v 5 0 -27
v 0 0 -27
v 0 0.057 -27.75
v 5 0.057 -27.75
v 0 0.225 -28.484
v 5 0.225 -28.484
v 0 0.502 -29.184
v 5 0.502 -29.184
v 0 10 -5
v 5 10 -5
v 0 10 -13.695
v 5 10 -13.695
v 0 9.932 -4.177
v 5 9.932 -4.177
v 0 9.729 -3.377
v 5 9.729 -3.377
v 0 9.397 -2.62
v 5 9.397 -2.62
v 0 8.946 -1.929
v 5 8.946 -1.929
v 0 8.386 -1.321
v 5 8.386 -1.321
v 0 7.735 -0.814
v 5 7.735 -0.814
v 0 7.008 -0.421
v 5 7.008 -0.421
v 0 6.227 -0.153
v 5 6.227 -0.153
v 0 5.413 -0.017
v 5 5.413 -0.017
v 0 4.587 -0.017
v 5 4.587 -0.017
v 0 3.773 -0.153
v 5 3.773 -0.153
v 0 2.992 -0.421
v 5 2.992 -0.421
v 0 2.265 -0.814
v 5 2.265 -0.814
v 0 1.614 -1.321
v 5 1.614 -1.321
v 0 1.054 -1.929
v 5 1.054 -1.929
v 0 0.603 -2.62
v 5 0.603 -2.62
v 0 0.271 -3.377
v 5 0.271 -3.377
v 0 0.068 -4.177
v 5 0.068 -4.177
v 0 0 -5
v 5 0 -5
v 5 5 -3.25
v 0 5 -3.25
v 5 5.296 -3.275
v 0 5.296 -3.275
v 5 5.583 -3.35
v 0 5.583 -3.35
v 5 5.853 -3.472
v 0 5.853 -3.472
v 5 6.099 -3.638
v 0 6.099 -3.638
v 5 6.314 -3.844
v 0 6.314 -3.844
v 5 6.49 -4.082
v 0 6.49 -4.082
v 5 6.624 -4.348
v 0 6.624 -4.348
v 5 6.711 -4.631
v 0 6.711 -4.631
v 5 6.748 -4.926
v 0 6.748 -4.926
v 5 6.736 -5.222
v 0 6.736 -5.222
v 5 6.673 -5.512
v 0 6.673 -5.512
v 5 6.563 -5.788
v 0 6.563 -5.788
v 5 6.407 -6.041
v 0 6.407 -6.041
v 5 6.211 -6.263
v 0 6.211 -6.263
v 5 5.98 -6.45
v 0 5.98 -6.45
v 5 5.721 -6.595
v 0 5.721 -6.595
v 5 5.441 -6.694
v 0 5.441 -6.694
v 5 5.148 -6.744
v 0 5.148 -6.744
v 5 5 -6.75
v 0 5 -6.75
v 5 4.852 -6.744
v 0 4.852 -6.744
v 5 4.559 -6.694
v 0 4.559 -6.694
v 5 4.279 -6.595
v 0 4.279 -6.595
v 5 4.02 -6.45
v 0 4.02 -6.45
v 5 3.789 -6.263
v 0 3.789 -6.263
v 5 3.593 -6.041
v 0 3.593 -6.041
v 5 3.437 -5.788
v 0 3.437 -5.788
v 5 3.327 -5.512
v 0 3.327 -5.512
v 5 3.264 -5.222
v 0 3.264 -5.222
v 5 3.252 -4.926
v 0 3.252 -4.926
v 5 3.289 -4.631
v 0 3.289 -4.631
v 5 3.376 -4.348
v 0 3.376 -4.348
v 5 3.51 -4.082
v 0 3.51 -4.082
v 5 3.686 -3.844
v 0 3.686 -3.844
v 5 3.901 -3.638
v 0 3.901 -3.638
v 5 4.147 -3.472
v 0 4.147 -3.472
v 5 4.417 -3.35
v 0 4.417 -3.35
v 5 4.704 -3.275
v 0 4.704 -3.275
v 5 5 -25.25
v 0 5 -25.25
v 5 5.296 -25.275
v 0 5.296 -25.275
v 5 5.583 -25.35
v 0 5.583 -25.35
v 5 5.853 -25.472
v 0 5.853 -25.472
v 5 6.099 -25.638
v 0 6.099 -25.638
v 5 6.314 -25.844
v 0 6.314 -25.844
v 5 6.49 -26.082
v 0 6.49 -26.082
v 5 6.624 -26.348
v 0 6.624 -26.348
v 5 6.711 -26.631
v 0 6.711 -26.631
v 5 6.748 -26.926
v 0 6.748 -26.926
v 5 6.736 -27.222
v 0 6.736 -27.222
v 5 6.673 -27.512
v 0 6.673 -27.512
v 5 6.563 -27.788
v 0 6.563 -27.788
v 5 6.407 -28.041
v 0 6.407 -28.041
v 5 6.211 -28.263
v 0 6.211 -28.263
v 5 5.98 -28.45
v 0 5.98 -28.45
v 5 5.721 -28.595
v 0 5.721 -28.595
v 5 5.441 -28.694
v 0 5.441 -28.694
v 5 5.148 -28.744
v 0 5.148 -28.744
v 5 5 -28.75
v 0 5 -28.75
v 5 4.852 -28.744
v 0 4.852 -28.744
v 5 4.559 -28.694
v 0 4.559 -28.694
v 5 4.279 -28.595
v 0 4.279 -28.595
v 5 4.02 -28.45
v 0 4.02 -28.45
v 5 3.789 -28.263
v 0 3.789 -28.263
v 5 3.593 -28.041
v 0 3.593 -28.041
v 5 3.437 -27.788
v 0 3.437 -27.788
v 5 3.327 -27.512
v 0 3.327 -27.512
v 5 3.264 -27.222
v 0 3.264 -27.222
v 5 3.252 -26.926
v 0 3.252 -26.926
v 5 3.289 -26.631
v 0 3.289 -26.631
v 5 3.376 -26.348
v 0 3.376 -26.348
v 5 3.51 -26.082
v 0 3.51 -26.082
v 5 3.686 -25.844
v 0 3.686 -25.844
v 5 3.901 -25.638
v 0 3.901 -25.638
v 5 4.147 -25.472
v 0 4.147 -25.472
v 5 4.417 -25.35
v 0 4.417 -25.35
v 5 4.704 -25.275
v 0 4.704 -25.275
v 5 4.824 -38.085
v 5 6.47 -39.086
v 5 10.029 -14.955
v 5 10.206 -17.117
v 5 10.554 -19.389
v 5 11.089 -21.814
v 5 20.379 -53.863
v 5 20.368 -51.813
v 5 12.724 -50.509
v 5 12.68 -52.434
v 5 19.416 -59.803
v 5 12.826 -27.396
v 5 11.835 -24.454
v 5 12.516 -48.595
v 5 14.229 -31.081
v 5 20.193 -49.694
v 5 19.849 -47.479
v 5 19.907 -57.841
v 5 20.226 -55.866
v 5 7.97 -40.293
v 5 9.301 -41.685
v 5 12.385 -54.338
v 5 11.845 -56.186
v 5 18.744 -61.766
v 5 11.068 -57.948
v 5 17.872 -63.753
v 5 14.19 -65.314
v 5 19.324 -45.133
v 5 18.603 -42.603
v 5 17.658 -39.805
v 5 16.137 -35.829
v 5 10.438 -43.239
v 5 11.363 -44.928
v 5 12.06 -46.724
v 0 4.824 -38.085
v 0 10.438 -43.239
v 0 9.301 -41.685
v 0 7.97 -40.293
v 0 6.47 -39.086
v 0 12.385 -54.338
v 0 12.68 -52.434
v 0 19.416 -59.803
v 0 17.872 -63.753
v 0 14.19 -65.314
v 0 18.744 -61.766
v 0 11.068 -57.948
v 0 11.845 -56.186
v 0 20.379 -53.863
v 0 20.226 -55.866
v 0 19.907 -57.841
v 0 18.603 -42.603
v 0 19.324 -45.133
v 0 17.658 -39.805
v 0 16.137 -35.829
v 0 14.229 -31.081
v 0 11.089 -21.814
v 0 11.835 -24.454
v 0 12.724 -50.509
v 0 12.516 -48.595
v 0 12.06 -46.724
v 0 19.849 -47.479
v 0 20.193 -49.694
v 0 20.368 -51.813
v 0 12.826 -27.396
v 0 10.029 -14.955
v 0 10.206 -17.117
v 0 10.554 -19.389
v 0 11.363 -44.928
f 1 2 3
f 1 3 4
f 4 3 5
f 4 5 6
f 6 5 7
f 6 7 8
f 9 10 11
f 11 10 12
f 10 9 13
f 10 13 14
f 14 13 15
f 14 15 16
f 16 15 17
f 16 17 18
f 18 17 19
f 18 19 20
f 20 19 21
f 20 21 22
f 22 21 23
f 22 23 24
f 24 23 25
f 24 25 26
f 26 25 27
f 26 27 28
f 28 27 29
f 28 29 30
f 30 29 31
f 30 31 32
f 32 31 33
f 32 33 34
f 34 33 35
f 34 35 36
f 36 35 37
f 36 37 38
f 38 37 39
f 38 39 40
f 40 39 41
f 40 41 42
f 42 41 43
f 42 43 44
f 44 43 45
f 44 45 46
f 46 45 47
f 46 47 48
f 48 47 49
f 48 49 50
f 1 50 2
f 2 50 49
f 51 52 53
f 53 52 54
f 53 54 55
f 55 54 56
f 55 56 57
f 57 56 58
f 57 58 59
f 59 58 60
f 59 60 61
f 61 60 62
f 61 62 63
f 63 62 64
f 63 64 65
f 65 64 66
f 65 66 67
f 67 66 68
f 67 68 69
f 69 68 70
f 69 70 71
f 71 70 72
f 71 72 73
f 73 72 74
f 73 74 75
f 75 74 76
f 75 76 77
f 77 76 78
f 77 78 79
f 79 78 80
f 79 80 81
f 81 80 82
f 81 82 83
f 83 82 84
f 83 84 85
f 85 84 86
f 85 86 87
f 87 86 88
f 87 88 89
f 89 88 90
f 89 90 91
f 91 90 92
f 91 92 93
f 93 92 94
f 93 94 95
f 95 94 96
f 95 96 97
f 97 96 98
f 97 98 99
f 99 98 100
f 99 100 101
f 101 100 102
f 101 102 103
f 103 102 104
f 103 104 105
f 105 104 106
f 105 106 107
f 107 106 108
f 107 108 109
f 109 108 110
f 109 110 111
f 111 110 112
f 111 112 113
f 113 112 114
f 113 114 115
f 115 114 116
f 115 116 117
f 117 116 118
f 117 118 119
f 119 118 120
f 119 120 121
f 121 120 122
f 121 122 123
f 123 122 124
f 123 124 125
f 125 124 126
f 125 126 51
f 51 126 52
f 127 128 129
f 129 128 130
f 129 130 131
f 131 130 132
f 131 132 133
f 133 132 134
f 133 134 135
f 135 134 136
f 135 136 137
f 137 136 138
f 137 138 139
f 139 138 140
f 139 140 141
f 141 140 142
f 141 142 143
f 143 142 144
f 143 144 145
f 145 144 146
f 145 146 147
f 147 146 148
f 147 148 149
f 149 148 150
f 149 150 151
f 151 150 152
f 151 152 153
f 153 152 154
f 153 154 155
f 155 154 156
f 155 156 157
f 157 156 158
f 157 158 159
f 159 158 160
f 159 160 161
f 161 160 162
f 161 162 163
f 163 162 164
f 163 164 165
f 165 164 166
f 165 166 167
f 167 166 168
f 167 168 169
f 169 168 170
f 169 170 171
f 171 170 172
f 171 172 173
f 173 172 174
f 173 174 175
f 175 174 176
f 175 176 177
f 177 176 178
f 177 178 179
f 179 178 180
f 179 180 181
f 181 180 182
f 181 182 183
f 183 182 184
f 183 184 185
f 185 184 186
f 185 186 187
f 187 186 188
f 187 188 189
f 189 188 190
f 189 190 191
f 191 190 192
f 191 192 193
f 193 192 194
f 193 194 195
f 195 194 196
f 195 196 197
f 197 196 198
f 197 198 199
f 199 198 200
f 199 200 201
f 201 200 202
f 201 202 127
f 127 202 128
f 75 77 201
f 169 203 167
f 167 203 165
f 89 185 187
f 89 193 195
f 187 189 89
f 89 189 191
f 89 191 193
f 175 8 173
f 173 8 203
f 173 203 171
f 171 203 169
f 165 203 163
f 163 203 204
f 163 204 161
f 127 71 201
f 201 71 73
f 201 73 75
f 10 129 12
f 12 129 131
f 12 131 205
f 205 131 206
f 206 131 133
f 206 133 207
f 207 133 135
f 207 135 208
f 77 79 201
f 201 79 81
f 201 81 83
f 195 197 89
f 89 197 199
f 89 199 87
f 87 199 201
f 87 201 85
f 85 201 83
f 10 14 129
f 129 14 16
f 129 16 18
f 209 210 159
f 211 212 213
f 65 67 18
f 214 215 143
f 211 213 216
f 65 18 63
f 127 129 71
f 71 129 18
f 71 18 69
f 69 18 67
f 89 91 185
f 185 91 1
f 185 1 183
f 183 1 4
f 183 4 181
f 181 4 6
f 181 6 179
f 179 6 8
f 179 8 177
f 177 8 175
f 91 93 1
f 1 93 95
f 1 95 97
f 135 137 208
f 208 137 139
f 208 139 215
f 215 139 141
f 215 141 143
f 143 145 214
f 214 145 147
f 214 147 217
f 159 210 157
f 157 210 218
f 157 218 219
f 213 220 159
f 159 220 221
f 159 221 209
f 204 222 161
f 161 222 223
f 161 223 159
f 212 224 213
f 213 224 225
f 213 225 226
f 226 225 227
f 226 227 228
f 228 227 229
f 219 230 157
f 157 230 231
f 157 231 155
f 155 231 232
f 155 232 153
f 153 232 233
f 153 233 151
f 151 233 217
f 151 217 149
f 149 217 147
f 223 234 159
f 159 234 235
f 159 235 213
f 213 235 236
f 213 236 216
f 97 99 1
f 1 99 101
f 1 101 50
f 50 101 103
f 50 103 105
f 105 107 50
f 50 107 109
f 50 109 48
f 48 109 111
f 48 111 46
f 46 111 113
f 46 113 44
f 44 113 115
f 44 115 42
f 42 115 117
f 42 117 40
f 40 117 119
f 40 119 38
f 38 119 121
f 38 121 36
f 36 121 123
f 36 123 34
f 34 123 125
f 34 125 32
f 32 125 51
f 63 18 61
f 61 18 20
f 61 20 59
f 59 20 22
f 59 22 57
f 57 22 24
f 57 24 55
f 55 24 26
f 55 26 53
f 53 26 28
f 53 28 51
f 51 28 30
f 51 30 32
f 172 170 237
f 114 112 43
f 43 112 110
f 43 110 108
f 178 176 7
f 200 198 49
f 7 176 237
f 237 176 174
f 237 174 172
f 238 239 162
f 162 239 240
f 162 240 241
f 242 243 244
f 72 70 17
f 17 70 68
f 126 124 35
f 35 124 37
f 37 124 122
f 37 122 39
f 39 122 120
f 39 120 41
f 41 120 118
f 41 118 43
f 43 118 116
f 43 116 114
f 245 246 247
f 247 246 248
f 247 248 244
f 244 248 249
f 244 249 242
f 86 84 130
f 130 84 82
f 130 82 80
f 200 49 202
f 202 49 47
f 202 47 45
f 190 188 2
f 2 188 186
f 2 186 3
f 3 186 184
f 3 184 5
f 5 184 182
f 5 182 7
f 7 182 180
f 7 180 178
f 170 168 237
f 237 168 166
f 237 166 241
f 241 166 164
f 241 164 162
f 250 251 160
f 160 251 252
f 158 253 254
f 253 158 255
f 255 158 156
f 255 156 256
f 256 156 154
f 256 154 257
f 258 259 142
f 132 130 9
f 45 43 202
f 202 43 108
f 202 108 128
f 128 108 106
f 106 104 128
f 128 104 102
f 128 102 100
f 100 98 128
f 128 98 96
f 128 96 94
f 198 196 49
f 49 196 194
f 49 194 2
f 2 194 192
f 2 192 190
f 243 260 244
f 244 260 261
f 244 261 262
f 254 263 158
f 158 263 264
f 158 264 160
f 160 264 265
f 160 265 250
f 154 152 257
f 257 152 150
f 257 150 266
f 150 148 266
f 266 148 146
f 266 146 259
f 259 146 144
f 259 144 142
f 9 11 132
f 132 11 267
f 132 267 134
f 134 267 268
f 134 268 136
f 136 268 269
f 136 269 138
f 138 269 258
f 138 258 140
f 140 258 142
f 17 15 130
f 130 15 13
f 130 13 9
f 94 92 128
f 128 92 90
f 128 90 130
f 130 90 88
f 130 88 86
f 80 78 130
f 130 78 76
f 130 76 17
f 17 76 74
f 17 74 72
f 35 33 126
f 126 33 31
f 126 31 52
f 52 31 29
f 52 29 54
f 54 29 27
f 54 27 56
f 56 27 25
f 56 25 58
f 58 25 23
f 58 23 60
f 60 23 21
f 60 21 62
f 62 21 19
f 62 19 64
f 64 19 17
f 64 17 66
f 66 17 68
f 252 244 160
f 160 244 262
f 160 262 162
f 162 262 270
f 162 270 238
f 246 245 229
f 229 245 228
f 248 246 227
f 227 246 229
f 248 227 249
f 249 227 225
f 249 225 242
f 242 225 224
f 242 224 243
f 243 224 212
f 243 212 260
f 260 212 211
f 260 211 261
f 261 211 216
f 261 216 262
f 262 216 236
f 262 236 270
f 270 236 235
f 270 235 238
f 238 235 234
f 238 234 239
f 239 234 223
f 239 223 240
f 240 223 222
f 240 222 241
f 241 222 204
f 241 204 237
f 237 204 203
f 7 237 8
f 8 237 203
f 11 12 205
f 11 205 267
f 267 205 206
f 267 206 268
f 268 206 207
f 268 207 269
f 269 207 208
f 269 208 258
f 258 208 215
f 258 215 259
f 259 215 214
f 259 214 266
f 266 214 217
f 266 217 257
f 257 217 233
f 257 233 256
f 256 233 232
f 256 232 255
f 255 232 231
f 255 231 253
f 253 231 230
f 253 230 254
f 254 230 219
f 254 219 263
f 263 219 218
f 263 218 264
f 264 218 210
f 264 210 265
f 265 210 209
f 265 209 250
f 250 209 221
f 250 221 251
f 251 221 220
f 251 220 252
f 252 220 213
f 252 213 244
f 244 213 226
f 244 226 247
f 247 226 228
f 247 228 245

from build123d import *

# Parameters (mm, degrees)
SKETCH1_R           = 1.75
BOSS_EXTRUDE1_DEPTH = 5
BOSS_EXTRUDE2_START = -5
BOSS_EXTRUDE2_DEPTH = 5


with BuildPart() as part:
    # Sketch1 → Boss-Extrude1 (new body)
    with BuildSketch(Plane(origin=(0, 0, 0), x_dir=(0, 0, -1), z_dir=(1, 0, 0))):
        with BuildLine():
            Line((27, 10), (5, 10))
            ThreePointArc((5, 10), (0, 5), (5, 0))
            Line((5, 0), (27, 0))
            ThreePointArc((27, 0), (32, 5), (27, 10))
        make_face()
        with Locations((5, 5)):
            Circle(SKETCH1_R, mode=Mode.SUBTRACT)
        with Locations((27, 5)):
            Circle(SKETCH1_R, mode=Mode.SUBTRACT)
    extrude(amount=BOSS_EXTRUDE1_DEPTH)

    # Sketch2 → Boss-Extrude2 (add)
    with BuildSketch(Plane(origin=(5, 0, 0), x_dir=(0, 0, -1), z_dir=(1, 0, 0)).offset(BOSS_EXTRUDE2_START)):
        with BuildLine():
            add(Edge.make_bspline(
                [(63.752972286, 17.872423117), (45.928882678, 26.563787963), (31.059268621, 10), (13.694974759, 10)],
                knots=[0, 0, 0, 0, 1, 1, 1, 1], degree=3))
            Line((13.694974759, 10), (27, 10))
            ThreePointArc((27, 10), (31.87285141, 6.120410255), (29.183837075, 0.502127655))
            Line((29.183837075, 0.502127655), (38.08542066, 4.824084077))
            ThreePointArc((38.08542066, 4.824084077), (46.723585583, 12.05963883), (57.948000409, 11.067843667))
            Line((57.948000409, 11.067843667), (65.313809691, 14.189518476))
            Line((65.313809691, 14.189518476), (63.752972286, 17.872423117))
        make_face()
    extrude(amount=BOSS_EXTRUDE2_DEPTH)


solid = part.part
